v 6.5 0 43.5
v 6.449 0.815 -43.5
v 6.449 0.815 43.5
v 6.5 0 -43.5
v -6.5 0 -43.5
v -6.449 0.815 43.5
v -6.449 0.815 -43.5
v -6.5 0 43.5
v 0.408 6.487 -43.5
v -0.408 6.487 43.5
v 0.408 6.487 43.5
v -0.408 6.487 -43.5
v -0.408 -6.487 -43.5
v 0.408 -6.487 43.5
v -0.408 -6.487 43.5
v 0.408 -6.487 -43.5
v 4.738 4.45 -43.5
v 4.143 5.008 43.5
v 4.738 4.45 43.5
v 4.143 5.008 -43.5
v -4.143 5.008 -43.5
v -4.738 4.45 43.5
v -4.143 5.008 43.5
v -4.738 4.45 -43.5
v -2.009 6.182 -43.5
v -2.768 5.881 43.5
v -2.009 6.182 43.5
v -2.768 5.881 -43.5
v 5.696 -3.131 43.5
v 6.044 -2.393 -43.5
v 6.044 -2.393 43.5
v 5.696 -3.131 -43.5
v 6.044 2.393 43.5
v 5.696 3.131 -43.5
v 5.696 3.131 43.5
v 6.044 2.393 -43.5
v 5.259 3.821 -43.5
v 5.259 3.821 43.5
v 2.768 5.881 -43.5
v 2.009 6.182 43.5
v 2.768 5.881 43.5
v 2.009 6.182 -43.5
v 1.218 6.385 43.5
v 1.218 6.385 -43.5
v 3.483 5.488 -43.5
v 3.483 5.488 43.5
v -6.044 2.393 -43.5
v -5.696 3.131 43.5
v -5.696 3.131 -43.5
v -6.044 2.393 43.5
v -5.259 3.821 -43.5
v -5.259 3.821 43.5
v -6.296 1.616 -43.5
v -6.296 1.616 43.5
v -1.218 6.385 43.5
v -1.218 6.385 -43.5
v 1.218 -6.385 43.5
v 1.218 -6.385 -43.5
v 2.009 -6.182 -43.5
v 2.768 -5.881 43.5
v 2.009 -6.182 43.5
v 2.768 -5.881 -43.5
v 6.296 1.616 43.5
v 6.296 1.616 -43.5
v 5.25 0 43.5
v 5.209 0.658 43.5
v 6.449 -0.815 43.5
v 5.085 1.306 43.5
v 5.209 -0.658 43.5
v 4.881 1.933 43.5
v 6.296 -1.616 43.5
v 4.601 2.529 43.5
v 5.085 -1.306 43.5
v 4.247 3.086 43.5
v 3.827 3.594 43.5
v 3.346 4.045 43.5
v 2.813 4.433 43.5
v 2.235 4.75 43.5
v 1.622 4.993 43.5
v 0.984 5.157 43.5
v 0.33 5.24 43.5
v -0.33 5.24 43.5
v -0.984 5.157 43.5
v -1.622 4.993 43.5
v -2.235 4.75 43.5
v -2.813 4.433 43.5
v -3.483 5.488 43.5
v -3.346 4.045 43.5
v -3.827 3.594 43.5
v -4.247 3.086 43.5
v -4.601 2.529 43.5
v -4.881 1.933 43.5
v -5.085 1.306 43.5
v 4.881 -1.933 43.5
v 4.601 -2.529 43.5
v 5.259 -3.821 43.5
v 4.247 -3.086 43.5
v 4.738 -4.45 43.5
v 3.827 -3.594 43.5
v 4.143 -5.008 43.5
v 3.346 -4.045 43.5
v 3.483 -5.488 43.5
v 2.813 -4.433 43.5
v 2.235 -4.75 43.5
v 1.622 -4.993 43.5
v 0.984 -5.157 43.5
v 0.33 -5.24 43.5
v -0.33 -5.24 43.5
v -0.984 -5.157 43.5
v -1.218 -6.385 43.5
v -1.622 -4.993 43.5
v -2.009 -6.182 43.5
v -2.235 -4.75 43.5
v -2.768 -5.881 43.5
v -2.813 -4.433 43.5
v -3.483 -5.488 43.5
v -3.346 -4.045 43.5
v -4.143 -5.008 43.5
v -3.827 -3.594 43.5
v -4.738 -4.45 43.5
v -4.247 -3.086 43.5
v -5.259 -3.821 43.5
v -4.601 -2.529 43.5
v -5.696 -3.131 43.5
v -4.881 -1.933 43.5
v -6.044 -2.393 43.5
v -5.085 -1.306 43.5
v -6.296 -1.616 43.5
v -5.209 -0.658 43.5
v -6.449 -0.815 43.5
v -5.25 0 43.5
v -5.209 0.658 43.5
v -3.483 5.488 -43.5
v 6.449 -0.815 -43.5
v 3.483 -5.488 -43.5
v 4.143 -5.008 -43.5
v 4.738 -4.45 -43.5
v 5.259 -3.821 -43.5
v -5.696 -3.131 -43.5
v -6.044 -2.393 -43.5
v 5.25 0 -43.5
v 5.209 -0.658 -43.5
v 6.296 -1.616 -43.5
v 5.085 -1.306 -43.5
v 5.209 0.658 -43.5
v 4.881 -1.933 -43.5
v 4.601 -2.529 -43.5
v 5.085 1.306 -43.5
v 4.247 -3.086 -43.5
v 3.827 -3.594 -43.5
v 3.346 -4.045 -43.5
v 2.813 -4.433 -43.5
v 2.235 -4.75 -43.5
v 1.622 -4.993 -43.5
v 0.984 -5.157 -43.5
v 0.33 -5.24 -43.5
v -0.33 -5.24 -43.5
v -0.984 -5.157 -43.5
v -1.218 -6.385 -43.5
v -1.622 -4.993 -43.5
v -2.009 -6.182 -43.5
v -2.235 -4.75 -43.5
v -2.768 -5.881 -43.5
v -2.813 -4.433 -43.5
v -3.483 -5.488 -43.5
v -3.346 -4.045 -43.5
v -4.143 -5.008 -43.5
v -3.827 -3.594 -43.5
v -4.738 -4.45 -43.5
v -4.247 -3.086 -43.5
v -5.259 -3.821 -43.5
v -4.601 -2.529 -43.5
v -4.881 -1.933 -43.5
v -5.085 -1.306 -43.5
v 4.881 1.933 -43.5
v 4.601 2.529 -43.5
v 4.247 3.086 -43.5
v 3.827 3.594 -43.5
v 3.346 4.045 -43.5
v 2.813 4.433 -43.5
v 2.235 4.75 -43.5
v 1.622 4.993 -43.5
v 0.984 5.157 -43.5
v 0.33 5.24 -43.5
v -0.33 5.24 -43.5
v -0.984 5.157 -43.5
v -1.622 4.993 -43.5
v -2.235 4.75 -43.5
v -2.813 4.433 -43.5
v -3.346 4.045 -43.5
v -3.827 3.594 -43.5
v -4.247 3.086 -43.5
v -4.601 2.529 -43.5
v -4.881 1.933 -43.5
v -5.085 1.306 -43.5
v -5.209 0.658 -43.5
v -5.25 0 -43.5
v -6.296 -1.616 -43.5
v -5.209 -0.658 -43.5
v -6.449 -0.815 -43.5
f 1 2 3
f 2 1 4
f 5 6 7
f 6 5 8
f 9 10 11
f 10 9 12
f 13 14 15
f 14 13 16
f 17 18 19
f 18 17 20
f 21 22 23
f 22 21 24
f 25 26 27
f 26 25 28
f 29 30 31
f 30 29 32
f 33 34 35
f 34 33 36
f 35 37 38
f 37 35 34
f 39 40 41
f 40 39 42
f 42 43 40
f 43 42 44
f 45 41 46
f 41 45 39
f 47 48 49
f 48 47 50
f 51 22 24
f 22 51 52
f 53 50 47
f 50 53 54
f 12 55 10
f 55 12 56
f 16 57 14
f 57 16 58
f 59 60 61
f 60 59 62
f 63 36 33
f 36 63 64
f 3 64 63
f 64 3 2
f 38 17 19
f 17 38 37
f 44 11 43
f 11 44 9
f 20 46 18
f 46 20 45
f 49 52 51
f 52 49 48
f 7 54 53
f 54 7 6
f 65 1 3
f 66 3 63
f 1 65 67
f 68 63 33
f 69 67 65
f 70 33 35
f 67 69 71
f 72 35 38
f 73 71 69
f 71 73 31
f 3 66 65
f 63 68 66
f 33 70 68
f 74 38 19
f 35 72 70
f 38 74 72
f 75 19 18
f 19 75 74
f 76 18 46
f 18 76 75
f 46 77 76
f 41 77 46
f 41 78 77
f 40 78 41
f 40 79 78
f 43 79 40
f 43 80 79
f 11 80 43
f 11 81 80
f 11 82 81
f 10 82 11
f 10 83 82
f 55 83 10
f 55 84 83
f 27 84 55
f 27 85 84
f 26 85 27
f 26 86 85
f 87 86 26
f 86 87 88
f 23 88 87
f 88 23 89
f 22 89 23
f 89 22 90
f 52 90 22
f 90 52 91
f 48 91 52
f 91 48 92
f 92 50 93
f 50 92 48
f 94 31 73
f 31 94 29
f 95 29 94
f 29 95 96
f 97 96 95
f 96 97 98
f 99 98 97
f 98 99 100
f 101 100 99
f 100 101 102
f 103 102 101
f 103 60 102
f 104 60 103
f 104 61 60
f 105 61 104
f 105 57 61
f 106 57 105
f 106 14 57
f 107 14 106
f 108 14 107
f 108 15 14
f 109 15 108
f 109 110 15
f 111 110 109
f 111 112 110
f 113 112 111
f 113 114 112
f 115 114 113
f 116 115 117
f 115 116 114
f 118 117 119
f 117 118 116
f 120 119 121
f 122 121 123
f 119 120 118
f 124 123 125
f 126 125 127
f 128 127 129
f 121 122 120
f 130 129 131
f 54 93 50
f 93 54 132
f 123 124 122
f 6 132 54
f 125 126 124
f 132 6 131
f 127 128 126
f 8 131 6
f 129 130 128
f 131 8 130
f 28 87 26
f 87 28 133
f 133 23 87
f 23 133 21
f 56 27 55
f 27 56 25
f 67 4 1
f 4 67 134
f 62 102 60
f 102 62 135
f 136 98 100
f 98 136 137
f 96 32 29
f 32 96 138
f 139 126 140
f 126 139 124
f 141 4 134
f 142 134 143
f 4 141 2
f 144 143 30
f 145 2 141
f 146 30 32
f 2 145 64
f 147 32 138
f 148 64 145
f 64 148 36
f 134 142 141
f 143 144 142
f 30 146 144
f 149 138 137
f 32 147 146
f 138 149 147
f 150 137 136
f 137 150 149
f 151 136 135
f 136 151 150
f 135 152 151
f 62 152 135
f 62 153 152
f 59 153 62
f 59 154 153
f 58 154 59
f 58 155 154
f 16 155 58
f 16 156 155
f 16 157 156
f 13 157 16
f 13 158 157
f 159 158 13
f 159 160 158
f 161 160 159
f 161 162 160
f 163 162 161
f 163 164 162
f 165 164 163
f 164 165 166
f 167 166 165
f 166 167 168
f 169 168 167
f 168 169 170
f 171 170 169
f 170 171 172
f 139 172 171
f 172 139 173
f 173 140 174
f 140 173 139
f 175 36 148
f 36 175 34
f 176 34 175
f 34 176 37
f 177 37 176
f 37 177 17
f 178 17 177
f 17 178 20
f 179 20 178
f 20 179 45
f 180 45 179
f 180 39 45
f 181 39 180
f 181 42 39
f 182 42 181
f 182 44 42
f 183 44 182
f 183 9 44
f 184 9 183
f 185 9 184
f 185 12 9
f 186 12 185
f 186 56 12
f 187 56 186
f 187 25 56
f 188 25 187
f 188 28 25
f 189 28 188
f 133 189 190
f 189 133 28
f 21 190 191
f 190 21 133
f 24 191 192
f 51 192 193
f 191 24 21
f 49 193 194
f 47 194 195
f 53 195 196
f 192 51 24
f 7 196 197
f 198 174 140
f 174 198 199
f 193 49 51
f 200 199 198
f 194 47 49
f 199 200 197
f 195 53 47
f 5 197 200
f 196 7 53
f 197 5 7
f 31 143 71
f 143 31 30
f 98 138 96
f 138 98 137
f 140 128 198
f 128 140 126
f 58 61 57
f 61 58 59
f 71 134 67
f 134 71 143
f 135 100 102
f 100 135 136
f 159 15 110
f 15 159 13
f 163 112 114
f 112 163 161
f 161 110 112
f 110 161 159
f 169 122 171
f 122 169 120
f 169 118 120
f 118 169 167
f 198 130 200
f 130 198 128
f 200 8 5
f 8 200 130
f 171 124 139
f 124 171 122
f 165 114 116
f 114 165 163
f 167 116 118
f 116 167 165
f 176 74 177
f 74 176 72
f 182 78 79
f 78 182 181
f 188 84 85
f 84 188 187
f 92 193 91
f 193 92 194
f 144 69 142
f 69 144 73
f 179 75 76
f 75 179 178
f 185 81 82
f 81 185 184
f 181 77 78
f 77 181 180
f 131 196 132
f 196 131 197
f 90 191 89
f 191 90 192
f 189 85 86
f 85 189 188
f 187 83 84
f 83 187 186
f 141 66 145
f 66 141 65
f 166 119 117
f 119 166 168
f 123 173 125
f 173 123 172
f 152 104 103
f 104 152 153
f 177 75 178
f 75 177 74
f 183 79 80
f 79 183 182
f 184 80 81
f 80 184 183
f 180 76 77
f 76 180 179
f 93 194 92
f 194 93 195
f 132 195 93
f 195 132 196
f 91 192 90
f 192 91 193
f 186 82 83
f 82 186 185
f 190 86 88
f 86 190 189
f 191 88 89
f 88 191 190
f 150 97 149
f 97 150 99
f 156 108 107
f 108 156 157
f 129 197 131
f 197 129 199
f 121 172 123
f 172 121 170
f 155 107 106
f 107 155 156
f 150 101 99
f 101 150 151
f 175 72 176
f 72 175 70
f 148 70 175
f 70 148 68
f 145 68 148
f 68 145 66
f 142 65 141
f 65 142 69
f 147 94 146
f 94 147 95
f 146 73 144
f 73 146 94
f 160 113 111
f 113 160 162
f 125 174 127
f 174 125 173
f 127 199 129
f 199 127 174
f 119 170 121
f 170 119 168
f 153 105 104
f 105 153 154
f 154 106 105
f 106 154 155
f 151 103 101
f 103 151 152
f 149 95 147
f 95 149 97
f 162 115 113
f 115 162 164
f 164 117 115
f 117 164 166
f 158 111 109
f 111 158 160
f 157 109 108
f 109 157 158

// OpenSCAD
$fn = 50;


difference() {
	union() {
		translate(v = [0, 0, -43.5000000000]) {
			cylinder(h = 87, r = 6.5000000000);
		}
	}
	union() {
		translate(v = [0, 0, -100.0000000000]) {
			cylinder(h = 200, r = 5.2500000000);
		}
	}
}
